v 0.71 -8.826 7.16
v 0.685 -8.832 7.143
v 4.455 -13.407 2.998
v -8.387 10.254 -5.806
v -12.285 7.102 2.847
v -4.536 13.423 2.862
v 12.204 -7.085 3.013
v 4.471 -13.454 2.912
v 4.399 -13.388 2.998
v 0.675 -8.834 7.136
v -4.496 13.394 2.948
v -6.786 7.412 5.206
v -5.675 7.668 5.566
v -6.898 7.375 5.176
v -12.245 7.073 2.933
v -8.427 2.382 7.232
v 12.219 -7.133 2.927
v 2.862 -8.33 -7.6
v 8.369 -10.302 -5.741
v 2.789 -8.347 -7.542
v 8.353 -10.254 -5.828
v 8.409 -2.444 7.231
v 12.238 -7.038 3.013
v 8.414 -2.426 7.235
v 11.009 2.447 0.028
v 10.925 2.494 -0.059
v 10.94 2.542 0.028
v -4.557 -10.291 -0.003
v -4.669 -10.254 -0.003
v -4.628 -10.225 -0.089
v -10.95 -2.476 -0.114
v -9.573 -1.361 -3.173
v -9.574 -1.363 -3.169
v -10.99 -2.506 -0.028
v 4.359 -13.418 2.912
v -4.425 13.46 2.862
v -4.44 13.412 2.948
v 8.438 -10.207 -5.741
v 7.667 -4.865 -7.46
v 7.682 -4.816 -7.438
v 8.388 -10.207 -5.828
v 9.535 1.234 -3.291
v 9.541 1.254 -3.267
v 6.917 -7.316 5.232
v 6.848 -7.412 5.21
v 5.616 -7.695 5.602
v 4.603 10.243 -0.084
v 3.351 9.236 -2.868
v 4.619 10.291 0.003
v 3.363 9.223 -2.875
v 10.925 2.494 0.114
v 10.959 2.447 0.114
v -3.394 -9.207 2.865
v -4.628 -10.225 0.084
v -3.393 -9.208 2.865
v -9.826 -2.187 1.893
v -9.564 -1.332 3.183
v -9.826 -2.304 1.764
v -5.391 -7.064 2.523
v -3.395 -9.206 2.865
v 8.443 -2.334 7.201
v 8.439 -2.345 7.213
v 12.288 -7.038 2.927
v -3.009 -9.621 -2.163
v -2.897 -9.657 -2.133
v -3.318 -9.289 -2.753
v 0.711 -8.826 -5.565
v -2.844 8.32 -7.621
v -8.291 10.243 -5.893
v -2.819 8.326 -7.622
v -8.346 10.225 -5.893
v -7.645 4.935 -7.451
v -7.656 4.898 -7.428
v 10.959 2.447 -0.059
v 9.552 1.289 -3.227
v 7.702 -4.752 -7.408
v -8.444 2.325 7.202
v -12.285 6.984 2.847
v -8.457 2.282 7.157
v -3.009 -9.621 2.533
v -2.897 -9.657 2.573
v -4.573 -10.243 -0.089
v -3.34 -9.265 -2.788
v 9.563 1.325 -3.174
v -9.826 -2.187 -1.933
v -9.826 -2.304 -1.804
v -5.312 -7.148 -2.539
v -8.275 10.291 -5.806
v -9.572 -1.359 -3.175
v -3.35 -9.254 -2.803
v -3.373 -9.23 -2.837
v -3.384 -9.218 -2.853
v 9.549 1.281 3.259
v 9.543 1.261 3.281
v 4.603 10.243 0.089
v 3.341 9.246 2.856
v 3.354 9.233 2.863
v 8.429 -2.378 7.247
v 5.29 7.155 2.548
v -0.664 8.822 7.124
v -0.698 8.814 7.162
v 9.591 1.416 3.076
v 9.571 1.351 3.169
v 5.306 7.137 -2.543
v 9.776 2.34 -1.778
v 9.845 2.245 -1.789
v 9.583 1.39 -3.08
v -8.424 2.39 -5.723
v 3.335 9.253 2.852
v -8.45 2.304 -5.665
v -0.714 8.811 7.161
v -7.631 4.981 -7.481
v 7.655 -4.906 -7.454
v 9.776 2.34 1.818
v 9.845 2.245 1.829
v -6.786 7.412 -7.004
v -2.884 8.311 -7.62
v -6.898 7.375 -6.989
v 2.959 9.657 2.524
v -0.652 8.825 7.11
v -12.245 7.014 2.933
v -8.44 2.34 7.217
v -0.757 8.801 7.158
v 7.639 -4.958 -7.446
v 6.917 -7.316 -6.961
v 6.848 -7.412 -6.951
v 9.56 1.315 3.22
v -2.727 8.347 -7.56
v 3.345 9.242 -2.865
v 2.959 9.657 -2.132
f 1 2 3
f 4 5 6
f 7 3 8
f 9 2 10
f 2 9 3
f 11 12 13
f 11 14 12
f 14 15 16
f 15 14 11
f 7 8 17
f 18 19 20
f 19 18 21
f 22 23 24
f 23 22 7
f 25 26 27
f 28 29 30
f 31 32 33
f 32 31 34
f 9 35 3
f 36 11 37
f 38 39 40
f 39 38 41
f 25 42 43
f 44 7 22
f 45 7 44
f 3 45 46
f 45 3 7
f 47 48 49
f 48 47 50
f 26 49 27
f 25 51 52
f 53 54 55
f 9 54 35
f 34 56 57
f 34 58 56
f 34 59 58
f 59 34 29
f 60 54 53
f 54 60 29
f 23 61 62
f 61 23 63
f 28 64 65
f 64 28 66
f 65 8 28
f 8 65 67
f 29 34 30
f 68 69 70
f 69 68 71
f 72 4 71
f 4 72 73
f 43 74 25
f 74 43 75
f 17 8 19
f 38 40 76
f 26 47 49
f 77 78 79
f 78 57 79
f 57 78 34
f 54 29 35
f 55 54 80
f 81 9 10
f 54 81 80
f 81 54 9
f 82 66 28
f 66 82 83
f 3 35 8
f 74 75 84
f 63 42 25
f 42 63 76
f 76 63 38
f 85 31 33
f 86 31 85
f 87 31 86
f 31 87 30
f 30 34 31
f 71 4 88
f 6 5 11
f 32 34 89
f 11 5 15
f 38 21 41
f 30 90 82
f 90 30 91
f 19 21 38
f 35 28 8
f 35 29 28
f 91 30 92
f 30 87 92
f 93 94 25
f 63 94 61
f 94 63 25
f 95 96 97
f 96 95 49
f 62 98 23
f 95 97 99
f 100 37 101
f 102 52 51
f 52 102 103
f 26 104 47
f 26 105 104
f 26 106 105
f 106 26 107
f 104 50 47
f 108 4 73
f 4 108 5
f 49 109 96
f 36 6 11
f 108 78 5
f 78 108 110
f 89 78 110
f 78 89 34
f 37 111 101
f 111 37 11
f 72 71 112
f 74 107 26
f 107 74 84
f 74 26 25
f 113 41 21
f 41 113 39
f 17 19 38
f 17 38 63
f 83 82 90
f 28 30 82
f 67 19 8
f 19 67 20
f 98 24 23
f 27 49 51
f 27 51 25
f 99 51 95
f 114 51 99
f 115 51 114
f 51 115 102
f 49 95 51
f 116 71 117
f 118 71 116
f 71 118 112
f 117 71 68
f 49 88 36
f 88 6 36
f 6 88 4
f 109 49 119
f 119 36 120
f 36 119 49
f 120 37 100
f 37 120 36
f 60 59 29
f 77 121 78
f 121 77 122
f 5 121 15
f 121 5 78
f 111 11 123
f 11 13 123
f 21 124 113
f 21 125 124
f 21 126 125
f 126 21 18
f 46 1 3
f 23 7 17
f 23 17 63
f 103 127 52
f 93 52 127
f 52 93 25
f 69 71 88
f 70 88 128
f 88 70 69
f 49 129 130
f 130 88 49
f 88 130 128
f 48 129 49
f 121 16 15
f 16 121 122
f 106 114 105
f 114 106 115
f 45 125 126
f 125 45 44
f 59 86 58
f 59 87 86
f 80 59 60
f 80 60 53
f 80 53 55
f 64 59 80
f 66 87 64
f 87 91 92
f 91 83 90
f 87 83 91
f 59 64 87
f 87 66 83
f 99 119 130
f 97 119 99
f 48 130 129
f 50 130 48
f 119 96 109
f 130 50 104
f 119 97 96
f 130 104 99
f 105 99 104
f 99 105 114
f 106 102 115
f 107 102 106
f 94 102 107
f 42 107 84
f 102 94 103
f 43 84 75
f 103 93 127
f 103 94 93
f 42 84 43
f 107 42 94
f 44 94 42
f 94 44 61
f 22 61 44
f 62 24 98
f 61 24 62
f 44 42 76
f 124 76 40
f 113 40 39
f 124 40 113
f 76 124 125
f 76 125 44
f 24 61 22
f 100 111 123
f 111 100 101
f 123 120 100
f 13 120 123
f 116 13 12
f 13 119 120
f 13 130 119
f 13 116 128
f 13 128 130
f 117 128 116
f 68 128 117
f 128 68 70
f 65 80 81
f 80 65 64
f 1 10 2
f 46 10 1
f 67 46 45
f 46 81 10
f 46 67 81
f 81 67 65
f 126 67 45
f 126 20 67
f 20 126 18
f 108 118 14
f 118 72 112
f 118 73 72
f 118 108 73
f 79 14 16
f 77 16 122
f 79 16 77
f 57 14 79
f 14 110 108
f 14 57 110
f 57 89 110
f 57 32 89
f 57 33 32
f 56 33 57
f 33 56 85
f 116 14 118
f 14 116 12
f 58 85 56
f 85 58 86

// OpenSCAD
// Auto-generated OpenSCAD file

    inner_points = 10*[[0.6816849469680293, -0.7316458385567781, -0.49999999999974415], [-0.6816849469680293, 0.7316458385567781, 0.49999999999974415], [0.9744663562470987, 0.22453356217329945, 0.5000000000002717], [-0.9744663562470987, -0.22453356217329945, -0.5000000000002717], [0.29278140927951324, 0.9561794007299667, -0.49999999999998396], [-0.29278140927951324, -0.9561794007299667, 0.49999999999998396], [0.29278140927921736, 0.9561794007300406, 0.5000000000000159], [-0.29278140927921736, -0.9561794007300406, -0.5000000000000159], [-0.6816849469677333, 0.7316458385567042, -0.5000000000002558], [0.6816849469677333, -0.7316458385567042, 0.5000000000002558], [0.9744663562473946, 0.2245335621732255, -0.4999999999997282], [-0.9744663562473946, -0.2245335621732255, 0.4999999999997282], [-0.12963451256244907, 0.5626084130954843, -1.316496580927806], [0.5520504344054322, -0.1690374254612569, -1.31649658092755], [-0.42241592184181437, -0.39357098763451936, -1.3164965809278217], [-0.12963451256322828, 0.5626084130956789, 1.316496580927646], [0.5520504344046528, -0.1690374254610622, 1.316496580927902], [-0.4224159218425935, -0.39357098763432463, 1.3164965809276301]];

    outer_points = 10*[[-0.7011219638770654, 0.0705453444014307, -0.8680157522490306], [0.7011219638770654, -0.0705453444014307, 0.8680157522490306], [0.7058639190712959, -0.07219505369662516, -0.8640277784741948], [-0.7058639190712959, 0.07219505369662516, 0.8640277784741948], [0.458804168329848, 1.0195580679347902, 0.00028501269092109927], [-0.458804168329848, -1.0195580679347902, -0.00028501269092109927], [1.0909253114088568, 0.2446924239128929, 0.0027536534135308988], [-1.0909253114088568, -0.2446924239128929, -0.0027536534135308988], [0.06900082079805647, 0.7043202996204667, 0.8655471115264208], [-0.06900082079805647, -0.7043202996204667, -0.8655471115264208], [0.07374277599228718, 0.7026705903252722, -0.8664964191968046], [-0.07374277599228718, -0.7026705903252722, 0.8664964191968046], [-0.4455432795266699, 1.3364455455443083, 0.28618363124246243], [-0.8306046718642308, 1.0195580679347902, -0.5805978006452633], [-1.2204080193960225, 0.7043202996204667, 0.28466429819023636], [1.2188273676646122, -0.7037703965220686, 0.2926835453841721], [0.8337659753270512, -1.0206578741315866, -0.5740978865035536], [0.44396262779525975, -1.33589564244591, 0.29116421233194606]];

    // Convex hull for inner set (I)
    module inner_hull() {
        hull() {
            for (p = inner_points) {
                translate(p) sphere(r=0.1);
            }
        }
    }

    // Convex hull for outer set (O) minus inner hull (O \ I)
    module outer_minus_inner() {
        difference() {
            hull() {
                for (p = outer_points) {
                    translate(p) sphere(r=0.1);
                }
            }
            inner_hull(); // Subtract inner hull
        }
    }

    // Convex hull for outer set (O) minus all translated inner hulls
    module outer_minus_AllTranslationInner() {
        difference() {
            hull() {
                for (p = outer_points) {
                    translate(p) sphere(r=0.1);
                }
            }
            hull() {
                translate([0,0,50]) inner_hull();
                translate([0,0,-50]) inner_hull();
            }; // Subtract translated inner hulls
        }
    }

    // Difference between outer_minus_inner and outer_minus_AllTranslationInner
    module outer_minus_inner_diff() {
        difference() {
            // Outer minus inner
            difference() {
                hull() {
                    for (p = outer_points) {
                        translate(p) sphere(r=0.1);
                    }
                }
                inner_hull();
            }

            // Subtract Outer minus AllTranslationInner
            difference() {
                hull() {
                    for (p = outer_points) {
                        translate(p) sphere(r=0.1);
                    }
                }
                hull() {
                    translate([0,0,50]) inner_hull();
                    translate([0,0,-50]) inner_hull();
                };
            }
        }
    }

    // Rendering all with colors applied
    color([0, 1, 0, 1]) outer_minus_AllTranslationInner(); // Opaque green
    
